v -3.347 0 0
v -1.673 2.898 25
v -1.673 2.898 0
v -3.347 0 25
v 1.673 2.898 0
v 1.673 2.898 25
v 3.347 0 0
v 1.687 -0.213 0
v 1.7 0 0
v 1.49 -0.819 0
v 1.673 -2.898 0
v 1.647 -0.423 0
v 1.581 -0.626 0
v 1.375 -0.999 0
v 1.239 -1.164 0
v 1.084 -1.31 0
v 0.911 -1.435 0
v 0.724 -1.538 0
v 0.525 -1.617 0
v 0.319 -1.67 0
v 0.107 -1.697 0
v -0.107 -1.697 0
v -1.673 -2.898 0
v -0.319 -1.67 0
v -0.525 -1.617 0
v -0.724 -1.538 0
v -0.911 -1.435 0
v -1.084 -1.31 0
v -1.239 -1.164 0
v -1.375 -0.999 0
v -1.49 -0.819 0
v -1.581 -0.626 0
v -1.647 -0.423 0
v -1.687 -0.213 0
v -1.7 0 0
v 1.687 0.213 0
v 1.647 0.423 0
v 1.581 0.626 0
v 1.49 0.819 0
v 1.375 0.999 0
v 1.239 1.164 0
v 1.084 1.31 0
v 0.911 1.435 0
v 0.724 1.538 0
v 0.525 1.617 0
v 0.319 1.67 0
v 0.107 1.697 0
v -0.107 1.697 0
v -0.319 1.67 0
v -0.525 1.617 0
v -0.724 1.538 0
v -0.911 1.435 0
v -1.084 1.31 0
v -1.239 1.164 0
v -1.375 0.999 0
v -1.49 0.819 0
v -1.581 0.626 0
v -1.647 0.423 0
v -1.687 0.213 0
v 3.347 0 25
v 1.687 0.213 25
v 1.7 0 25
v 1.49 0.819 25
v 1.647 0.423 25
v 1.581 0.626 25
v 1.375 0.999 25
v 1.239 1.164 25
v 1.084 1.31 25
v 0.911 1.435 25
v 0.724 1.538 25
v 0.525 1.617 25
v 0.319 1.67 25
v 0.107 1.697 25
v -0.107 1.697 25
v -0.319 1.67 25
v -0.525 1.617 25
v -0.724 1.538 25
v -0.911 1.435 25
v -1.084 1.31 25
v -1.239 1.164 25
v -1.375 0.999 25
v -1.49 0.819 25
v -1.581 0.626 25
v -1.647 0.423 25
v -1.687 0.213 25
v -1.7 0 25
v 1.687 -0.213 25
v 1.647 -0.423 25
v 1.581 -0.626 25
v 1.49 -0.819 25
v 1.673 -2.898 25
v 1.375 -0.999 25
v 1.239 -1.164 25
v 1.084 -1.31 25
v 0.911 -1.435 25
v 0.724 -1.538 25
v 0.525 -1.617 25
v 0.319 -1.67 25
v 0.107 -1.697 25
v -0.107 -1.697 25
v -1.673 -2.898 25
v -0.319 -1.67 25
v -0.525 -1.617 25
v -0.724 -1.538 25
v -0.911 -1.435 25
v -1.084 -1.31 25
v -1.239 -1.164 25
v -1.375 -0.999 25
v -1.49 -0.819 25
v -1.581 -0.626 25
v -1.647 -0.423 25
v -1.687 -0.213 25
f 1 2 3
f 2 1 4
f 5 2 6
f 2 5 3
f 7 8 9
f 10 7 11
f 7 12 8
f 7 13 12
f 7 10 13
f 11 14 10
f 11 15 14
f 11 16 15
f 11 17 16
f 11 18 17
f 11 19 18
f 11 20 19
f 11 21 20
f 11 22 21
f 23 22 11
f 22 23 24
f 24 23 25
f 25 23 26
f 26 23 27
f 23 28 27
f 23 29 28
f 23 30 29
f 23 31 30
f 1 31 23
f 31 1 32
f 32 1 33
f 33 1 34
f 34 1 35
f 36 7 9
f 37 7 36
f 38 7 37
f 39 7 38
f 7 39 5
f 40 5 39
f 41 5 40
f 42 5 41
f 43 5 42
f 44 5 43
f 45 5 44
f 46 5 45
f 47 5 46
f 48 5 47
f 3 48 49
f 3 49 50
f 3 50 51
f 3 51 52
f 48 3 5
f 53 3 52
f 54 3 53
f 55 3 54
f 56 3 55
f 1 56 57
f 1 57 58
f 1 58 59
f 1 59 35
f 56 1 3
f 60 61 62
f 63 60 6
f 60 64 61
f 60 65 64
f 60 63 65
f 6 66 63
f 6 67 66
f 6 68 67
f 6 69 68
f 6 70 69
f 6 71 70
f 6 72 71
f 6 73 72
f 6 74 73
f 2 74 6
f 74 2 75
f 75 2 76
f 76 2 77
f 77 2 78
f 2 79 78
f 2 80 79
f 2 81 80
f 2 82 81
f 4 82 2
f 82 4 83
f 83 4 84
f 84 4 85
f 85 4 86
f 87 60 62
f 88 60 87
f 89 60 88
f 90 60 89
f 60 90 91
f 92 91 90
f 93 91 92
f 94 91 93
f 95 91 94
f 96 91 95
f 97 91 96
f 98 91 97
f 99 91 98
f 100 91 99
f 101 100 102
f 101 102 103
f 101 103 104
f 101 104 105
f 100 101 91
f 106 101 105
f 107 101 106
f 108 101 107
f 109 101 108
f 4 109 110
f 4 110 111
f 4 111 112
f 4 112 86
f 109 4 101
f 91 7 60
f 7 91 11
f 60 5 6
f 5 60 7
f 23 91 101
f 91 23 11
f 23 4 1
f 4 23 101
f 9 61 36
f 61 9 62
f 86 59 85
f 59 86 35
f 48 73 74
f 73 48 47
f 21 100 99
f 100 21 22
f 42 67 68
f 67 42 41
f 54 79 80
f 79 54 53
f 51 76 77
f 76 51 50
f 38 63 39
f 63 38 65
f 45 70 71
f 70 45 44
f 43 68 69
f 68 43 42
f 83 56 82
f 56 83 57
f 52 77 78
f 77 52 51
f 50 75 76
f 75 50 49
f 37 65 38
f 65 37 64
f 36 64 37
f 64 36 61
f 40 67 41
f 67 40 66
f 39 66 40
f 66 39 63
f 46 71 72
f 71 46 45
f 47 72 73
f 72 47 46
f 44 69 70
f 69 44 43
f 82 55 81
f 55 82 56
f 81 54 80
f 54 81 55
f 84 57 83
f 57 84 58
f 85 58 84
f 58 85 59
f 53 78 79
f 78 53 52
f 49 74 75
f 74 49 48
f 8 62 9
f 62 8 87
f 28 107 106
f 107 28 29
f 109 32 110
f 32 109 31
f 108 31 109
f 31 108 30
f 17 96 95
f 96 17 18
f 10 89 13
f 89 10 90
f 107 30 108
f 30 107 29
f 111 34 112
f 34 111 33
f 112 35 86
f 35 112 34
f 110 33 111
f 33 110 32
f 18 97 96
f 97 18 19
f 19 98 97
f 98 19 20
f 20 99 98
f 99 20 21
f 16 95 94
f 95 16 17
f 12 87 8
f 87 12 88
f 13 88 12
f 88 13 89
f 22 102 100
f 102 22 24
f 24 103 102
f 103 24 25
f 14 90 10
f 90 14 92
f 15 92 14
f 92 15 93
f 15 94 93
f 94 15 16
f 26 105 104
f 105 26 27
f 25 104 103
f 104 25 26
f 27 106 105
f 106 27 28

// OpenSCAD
$fn = 50;


difference() {
	union() {
		translate(v = [0, 0, 0]) {
			rotate(a = [0, 0, 0]) {
				translate(v = [0, 0, 0]) {
					rotate(a = [0, 0, 0]) {
						linear_extrude(height = 25) {
							polygon(points = [[3.3466000000, 0.0000000000], [1.6733000000, 2.8982406163], [-1.6733000000, 2.8982406163], [-3.3466000000, 0.0000000000], [-1.6733000000, -2.8982406163], [1.6733000000, -2.8982406163]]);
						}
					}
				}
			}
		}
	}
	union() {
		translate(v = [0, 0, 0]) {
			rotate(a = [0, 0, 0]) {
				cylinder(h = 25, r = 1.7000000000);
			}
		}
	}
}
